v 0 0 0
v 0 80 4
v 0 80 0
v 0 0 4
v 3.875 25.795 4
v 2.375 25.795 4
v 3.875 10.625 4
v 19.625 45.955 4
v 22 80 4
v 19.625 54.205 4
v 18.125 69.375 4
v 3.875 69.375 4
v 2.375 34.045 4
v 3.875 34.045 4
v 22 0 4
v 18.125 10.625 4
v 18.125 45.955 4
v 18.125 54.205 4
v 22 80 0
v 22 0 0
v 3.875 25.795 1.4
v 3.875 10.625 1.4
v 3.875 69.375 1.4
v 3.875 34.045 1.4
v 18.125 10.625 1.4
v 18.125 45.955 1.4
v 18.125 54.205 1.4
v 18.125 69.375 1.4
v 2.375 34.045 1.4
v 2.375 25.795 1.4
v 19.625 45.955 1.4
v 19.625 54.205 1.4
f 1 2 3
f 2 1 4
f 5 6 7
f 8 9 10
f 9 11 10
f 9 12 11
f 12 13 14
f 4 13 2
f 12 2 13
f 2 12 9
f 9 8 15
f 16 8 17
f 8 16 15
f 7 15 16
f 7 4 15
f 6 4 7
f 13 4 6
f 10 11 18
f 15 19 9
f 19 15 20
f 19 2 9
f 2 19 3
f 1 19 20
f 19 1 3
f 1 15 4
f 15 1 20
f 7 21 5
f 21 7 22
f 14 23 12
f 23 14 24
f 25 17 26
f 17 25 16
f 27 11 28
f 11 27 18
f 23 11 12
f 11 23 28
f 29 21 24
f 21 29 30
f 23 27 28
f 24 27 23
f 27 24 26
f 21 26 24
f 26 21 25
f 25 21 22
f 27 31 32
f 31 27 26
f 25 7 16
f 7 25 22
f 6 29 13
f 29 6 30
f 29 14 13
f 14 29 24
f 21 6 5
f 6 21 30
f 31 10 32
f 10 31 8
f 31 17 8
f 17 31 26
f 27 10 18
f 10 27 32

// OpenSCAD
item_width = 14.25;
item_length = 58.75;
item_depth = 2.6;

jig_width = 22;
jig_length = 80;
jig_depth = 4;

mold_area_width = jig_width;
mold_area_length = jig_length;

protrusion_length = 8.25;
protrusion_width = 1.5;
protrusion_offset = 15.17;

difference() {
    // Jig
    cube([
        jig_width,
        jig_length,
        jig_depth
    ]);
    
    // Items
    translate([
        1/2 * (mold_area_width - item_width),
        1/2 * (mold_area_length - item_length),
        jig_depth - item_depth
    ]) {
    cube([
        item_width,
        item_length,
        item_depth
    ]);
    }
    
    translate([
        1/2 * (mold_area_width - item_width) - protrusion_width,
        1/2 * (mold_area_length - item_length) + protrusion_offset,
        jig_depth - item_depth
    ]) {
    cube([
        protrusion_width,
        protrusion_length,
        item_depth
    ]);    
    }
    
    translate([
        1/2 * (mold_area_width - item_width) + item_width,
        1/2 * (mold_area_length - item_length) + item_length - protrusion_offset - protrusion_length
    ,
        jig_depth - item_depth
    ]) {
    cube([
        protrusion_width,
        protrusion_length,
        item_depth
    ]);
    }
}
